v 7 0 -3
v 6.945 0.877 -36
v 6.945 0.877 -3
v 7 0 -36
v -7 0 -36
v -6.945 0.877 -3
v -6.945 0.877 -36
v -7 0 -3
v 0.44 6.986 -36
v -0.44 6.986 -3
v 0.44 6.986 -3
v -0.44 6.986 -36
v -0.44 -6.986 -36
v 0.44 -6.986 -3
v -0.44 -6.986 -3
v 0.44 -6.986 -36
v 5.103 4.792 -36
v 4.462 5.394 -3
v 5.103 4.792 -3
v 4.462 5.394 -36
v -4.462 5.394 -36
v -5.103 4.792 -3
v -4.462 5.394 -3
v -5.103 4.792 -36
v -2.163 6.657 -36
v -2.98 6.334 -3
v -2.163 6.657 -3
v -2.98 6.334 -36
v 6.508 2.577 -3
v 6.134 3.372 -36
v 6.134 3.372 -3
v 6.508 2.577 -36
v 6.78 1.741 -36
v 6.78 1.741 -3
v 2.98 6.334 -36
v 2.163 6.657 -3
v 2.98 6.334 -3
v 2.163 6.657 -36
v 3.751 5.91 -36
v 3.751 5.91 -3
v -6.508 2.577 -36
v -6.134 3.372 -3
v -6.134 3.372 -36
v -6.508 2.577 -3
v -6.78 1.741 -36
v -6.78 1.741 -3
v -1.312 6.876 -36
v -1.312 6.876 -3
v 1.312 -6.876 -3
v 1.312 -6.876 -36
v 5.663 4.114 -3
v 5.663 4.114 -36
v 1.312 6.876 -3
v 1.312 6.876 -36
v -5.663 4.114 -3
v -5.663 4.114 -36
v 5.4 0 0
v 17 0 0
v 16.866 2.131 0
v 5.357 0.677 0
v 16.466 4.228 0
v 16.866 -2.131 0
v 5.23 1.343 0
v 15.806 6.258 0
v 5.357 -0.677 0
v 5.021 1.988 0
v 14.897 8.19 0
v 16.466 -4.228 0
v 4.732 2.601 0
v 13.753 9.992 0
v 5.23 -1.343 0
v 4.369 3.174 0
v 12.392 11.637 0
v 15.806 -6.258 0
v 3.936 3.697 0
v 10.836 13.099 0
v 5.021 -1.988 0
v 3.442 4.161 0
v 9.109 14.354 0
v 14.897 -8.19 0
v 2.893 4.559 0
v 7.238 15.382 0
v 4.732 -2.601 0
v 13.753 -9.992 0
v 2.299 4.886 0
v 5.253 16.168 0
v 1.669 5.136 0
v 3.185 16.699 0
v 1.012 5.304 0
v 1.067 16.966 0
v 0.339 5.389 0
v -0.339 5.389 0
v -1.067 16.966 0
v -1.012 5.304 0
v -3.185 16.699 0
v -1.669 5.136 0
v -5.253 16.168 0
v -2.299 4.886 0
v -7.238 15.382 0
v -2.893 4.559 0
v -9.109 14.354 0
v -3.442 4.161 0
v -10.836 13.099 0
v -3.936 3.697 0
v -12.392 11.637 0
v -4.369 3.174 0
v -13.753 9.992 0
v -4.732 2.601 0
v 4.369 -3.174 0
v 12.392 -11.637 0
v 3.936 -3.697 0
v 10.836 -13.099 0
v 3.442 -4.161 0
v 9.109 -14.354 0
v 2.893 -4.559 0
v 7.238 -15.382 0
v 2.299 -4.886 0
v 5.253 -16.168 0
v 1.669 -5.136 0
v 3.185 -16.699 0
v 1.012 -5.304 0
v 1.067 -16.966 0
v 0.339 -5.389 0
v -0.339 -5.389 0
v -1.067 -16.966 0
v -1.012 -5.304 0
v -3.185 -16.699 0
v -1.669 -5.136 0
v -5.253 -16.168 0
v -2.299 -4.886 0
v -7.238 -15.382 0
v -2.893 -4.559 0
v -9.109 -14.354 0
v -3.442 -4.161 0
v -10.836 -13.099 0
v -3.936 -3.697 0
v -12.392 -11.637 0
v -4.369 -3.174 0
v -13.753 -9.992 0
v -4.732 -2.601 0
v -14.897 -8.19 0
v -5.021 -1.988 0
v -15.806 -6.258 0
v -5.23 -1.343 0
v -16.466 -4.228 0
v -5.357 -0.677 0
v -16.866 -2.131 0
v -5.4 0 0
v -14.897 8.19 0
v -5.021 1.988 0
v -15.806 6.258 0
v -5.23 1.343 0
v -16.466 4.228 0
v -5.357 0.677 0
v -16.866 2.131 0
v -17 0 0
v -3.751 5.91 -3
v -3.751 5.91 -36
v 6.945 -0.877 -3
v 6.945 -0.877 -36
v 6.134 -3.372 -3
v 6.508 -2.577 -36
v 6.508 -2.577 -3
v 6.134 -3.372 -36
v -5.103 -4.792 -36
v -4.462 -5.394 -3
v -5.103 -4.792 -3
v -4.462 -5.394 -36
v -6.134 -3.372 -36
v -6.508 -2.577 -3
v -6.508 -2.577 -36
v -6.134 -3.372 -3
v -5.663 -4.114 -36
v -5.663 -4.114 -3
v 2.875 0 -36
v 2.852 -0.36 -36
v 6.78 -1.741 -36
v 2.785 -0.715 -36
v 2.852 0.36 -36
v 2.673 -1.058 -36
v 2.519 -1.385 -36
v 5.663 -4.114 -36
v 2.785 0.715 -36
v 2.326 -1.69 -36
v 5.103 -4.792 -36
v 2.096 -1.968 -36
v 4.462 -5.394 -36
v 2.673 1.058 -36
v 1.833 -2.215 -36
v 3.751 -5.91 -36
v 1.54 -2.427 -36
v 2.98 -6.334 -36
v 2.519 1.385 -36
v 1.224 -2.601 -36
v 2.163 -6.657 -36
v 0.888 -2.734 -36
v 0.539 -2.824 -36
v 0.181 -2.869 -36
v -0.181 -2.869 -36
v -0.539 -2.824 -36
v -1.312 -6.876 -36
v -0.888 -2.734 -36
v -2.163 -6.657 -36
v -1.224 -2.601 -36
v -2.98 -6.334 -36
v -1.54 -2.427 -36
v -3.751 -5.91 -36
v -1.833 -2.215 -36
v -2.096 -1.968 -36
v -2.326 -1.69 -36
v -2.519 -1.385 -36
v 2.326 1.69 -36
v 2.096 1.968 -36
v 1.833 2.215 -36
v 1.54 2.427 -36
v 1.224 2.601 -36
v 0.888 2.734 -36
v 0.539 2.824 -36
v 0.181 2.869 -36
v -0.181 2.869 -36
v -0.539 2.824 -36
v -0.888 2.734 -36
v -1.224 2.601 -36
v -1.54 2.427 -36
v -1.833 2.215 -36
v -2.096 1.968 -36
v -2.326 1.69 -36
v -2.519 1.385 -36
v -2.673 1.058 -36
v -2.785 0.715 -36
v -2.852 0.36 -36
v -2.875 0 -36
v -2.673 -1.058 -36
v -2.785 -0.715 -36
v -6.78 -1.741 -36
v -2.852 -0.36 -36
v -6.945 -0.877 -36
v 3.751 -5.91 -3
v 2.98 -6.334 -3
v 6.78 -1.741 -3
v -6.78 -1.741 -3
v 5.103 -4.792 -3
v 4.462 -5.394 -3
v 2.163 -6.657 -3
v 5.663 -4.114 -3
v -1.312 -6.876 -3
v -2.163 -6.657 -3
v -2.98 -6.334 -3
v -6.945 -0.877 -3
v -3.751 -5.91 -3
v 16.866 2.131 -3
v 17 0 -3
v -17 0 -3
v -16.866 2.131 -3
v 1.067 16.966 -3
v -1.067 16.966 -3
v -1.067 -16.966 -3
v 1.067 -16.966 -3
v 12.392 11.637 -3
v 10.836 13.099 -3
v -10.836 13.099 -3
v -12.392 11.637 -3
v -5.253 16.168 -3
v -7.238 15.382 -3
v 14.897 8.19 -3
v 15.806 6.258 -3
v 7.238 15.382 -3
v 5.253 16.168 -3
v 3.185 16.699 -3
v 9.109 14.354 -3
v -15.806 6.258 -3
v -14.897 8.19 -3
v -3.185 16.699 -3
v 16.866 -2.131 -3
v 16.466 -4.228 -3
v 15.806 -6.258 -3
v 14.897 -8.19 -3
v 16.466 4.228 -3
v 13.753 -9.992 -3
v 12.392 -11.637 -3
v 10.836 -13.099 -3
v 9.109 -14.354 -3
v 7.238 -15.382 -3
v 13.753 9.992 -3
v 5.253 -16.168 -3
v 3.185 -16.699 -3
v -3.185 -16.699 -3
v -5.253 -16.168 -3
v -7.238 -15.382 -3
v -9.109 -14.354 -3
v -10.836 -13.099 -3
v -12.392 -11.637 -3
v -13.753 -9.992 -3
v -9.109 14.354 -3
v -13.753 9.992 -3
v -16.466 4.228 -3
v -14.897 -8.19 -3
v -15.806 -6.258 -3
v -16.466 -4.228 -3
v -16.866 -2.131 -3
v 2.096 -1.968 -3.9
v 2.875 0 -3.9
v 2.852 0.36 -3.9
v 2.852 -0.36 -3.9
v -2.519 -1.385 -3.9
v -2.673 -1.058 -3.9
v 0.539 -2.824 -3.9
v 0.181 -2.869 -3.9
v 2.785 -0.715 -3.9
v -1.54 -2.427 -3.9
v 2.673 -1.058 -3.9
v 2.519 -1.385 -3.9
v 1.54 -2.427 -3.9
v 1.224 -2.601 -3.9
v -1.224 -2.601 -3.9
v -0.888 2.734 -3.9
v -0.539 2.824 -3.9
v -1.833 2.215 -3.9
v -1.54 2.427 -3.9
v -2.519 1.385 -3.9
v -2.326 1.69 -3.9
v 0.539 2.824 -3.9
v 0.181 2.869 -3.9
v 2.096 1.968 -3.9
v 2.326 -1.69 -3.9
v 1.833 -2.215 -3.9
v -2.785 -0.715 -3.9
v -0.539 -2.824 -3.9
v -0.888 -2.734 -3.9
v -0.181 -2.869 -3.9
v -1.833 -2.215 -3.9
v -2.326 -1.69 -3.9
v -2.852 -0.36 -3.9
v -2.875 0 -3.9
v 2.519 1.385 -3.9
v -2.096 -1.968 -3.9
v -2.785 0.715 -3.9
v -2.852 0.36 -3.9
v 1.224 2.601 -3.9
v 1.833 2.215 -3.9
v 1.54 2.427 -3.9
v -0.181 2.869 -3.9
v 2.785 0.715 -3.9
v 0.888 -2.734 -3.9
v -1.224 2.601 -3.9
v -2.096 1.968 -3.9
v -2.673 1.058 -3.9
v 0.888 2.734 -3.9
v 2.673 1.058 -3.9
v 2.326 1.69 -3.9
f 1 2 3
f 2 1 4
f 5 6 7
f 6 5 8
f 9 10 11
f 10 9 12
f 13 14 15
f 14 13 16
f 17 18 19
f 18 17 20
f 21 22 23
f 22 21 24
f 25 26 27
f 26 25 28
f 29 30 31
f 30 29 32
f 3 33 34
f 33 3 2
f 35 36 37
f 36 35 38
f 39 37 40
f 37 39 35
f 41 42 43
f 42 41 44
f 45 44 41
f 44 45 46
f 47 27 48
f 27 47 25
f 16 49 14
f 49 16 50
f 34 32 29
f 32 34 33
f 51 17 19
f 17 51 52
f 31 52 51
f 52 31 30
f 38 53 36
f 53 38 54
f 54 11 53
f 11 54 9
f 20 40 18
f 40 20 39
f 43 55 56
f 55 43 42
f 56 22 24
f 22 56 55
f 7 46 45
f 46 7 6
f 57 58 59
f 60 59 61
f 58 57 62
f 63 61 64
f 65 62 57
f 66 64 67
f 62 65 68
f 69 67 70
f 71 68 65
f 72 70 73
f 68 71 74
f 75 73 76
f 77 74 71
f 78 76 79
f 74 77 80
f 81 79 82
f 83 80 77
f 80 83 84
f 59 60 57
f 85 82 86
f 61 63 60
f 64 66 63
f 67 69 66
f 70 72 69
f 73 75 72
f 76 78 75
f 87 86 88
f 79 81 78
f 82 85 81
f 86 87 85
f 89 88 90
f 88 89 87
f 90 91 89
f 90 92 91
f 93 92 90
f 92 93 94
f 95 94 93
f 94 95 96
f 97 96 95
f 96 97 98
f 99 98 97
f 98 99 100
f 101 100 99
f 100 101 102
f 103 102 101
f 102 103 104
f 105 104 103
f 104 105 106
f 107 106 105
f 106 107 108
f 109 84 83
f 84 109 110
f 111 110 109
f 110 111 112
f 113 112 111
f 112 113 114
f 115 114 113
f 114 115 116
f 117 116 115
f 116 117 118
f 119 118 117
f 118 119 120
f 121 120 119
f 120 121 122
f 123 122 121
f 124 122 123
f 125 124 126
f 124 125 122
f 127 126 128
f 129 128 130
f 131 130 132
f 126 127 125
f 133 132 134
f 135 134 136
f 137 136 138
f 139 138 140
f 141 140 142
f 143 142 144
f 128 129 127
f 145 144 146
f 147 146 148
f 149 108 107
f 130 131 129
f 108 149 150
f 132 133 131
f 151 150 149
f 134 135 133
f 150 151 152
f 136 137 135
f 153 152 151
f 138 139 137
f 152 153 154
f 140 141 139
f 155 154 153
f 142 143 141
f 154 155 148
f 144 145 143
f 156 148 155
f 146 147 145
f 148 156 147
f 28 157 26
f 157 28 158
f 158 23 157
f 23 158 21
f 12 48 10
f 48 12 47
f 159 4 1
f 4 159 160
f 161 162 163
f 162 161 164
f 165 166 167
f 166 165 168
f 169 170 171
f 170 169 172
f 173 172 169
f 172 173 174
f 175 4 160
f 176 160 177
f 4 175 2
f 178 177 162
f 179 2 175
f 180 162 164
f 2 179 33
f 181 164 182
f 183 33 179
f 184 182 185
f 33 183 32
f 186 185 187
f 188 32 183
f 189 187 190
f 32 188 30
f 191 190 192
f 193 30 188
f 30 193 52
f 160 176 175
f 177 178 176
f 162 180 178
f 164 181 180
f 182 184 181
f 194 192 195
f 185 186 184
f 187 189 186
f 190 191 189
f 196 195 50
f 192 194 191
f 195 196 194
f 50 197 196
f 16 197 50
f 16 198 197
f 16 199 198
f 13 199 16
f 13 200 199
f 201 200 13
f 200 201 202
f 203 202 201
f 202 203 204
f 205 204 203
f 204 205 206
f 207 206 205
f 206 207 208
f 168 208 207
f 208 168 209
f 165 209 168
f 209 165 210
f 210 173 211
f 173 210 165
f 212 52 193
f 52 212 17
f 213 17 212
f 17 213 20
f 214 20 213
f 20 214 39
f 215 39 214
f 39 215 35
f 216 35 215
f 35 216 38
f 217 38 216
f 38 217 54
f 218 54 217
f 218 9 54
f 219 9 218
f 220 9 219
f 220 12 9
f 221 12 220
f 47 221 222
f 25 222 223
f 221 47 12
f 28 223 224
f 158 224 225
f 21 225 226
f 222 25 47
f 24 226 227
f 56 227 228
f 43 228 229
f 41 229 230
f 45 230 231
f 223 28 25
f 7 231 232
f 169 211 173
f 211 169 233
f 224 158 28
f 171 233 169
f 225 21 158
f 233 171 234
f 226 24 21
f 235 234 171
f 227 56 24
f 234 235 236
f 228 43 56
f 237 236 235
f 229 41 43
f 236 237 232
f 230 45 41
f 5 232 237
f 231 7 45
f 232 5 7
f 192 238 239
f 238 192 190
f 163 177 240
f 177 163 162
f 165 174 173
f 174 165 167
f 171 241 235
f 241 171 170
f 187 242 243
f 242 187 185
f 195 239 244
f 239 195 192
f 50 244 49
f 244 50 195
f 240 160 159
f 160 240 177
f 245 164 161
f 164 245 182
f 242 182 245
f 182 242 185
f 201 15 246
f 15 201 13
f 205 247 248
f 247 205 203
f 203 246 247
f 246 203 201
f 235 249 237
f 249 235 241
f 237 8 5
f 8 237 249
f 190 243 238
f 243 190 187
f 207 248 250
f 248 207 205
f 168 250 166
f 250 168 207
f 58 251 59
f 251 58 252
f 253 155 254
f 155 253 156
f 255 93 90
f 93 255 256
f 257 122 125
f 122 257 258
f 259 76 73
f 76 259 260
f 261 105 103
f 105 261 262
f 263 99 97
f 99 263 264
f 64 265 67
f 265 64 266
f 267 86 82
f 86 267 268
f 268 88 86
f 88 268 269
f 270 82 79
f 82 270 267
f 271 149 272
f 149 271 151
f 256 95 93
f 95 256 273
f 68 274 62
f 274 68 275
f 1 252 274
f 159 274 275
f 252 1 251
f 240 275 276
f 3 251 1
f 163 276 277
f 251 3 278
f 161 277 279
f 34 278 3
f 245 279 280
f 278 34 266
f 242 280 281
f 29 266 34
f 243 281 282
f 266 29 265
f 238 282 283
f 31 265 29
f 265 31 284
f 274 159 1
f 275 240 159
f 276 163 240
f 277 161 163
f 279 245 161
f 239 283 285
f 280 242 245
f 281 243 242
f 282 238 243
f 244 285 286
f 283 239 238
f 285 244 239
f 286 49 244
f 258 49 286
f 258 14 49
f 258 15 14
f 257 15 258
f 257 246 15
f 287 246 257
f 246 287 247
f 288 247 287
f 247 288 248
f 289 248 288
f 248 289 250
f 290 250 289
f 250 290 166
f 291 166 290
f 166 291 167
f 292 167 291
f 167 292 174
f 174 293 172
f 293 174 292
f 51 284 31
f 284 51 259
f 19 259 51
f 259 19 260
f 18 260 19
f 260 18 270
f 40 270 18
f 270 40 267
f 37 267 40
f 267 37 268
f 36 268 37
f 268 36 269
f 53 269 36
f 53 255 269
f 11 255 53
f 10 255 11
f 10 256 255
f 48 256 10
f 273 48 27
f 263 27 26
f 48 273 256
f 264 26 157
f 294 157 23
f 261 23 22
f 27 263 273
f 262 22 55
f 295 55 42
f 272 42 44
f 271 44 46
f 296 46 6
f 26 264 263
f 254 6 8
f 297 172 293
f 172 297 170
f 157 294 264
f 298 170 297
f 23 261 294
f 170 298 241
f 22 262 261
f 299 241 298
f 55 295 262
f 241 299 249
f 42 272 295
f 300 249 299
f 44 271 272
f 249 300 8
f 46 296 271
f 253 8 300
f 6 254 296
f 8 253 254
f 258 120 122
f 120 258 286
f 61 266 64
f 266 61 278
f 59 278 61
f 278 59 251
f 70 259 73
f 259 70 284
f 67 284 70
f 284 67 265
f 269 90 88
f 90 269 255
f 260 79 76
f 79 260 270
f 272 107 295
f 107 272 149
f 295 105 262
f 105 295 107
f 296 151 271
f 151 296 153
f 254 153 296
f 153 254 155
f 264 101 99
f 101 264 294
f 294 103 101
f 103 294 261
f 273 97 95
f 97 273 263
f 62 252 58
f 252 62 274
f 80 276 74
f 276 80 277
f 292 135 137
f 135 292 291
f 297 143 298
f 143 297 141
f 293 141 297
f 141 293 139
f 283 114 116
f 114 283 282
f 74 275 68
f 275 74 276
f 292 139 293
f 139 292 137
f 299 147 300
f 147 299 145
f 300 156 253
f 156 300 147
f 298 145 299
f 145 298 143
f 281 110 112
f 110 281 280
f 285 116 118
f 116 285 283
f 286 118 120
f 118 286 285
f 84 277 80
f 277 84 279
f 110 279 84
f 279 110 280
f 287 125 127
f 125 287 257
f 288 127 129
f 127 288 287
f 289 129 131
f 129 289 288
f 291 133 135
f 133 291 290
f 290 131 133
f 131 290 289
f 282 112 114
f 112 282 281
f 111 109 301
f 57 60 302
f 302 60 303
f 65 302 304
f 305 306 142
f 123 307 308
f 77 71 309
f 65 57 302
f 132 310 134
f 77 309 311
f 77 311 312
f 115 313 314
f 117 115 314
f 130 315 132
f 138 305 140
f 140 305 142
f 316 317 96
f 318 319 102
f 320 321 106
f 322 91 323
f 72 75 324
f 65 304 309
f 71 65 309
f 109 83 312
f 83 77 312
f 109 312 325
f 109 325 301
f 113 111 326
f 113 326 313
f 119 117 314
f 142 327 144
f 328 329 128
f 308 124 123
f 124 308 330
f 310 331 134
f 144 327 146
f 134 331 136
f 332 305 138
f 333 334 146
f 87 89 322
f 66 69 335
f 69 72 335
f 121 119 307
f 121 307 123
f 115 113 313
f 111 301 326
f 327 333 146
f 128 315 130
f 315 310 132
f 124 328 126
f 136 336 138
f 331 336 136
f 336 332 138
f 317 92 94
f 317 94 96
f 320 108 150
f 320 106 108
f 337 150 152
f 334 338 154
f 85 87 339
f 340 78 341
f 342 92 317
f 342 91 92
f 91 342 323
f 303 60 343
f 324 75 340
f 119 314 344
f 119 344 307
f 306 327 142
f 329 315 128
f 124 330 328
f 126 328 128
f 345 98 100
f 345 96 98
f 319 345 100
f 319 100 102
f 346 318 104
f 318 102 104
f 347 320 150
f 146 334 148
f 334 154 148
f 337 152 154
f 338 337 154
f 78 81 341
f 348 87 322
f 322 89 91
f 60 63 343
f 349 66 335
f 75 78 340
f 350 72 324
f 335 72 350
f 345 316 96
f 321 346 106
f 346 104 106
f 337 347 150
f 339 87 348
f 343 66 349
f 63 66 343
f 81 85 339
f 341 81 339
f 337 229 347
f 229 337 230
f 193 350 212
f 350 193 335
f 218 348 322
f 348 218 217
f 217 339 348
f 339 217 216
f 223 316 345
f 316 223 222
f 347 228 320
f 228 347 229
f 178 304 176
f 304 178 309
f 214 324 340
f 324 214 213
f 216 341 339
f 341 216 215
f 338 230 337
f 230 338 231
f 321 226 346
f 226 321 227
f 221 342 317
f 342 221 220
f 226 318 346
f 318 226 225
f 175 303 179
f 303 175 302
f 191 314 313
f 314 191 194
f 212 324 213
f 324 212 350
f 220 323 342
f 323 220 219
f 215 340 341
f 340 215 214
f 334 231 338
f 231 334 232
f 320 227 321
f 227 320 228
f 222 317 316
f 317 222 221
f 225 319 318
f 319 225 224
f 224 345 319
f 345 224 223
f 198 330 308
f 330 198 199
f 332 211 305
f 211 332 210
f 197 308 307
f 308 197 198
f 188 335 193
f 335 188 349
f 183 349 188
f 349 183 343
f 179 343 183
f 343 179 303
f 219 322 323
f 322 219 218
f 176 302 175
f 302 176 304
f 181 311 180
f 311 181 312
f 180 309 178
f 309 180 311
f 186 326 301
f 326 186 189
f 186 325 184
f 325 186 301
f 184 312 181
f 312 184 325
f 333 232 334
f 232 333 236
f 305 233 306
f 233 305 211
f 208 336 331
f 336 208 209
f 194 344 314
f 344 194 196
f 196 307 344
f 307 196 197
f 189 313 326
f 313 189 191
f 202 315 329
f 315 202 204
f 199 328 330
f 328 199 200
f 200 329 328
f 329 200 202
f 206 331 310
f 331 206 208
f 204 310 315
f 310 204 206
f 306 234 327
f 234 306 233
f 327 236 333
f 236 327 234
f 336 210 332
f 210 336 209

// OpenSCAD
$fn = 50;


difference() {
	union() {
		translate(v = [0, 0, -36.0000000000]) {
			cylinder(h = 36, r = 7.0000000000);
		}
		translate(v = [0, 0, -3.0000000000]) {
			cylinder(h = 3, r = 17.0000000000);
		}
	}
	union() {
		translate(v = [0, 0, 0]) {
			rotate(a = [0, 0, 0]) {
				difference() {
					union() {
						#translate(v = [0, 0, -36.0000000000]) {
							cylinder(h = 36, r = 2.6000000000);
						}
						#translate(v = [0, 0, -3.9000000000]) {
							cylinder(h = 3.9000000000, r1 = 2.8750000000, r2 = 5.4000000000);
						}
						#translate(v = [0, 0, -36.0000000000]) {
							cylinder(h = 36, r = 2.8750000000);
						}
						#translate(v = [0, 0, -36.0000000000]) {
							cylinder(h = 36, r = 2.6000000000);
						}
					}
					union();
				}
			}
		}
	}
}
